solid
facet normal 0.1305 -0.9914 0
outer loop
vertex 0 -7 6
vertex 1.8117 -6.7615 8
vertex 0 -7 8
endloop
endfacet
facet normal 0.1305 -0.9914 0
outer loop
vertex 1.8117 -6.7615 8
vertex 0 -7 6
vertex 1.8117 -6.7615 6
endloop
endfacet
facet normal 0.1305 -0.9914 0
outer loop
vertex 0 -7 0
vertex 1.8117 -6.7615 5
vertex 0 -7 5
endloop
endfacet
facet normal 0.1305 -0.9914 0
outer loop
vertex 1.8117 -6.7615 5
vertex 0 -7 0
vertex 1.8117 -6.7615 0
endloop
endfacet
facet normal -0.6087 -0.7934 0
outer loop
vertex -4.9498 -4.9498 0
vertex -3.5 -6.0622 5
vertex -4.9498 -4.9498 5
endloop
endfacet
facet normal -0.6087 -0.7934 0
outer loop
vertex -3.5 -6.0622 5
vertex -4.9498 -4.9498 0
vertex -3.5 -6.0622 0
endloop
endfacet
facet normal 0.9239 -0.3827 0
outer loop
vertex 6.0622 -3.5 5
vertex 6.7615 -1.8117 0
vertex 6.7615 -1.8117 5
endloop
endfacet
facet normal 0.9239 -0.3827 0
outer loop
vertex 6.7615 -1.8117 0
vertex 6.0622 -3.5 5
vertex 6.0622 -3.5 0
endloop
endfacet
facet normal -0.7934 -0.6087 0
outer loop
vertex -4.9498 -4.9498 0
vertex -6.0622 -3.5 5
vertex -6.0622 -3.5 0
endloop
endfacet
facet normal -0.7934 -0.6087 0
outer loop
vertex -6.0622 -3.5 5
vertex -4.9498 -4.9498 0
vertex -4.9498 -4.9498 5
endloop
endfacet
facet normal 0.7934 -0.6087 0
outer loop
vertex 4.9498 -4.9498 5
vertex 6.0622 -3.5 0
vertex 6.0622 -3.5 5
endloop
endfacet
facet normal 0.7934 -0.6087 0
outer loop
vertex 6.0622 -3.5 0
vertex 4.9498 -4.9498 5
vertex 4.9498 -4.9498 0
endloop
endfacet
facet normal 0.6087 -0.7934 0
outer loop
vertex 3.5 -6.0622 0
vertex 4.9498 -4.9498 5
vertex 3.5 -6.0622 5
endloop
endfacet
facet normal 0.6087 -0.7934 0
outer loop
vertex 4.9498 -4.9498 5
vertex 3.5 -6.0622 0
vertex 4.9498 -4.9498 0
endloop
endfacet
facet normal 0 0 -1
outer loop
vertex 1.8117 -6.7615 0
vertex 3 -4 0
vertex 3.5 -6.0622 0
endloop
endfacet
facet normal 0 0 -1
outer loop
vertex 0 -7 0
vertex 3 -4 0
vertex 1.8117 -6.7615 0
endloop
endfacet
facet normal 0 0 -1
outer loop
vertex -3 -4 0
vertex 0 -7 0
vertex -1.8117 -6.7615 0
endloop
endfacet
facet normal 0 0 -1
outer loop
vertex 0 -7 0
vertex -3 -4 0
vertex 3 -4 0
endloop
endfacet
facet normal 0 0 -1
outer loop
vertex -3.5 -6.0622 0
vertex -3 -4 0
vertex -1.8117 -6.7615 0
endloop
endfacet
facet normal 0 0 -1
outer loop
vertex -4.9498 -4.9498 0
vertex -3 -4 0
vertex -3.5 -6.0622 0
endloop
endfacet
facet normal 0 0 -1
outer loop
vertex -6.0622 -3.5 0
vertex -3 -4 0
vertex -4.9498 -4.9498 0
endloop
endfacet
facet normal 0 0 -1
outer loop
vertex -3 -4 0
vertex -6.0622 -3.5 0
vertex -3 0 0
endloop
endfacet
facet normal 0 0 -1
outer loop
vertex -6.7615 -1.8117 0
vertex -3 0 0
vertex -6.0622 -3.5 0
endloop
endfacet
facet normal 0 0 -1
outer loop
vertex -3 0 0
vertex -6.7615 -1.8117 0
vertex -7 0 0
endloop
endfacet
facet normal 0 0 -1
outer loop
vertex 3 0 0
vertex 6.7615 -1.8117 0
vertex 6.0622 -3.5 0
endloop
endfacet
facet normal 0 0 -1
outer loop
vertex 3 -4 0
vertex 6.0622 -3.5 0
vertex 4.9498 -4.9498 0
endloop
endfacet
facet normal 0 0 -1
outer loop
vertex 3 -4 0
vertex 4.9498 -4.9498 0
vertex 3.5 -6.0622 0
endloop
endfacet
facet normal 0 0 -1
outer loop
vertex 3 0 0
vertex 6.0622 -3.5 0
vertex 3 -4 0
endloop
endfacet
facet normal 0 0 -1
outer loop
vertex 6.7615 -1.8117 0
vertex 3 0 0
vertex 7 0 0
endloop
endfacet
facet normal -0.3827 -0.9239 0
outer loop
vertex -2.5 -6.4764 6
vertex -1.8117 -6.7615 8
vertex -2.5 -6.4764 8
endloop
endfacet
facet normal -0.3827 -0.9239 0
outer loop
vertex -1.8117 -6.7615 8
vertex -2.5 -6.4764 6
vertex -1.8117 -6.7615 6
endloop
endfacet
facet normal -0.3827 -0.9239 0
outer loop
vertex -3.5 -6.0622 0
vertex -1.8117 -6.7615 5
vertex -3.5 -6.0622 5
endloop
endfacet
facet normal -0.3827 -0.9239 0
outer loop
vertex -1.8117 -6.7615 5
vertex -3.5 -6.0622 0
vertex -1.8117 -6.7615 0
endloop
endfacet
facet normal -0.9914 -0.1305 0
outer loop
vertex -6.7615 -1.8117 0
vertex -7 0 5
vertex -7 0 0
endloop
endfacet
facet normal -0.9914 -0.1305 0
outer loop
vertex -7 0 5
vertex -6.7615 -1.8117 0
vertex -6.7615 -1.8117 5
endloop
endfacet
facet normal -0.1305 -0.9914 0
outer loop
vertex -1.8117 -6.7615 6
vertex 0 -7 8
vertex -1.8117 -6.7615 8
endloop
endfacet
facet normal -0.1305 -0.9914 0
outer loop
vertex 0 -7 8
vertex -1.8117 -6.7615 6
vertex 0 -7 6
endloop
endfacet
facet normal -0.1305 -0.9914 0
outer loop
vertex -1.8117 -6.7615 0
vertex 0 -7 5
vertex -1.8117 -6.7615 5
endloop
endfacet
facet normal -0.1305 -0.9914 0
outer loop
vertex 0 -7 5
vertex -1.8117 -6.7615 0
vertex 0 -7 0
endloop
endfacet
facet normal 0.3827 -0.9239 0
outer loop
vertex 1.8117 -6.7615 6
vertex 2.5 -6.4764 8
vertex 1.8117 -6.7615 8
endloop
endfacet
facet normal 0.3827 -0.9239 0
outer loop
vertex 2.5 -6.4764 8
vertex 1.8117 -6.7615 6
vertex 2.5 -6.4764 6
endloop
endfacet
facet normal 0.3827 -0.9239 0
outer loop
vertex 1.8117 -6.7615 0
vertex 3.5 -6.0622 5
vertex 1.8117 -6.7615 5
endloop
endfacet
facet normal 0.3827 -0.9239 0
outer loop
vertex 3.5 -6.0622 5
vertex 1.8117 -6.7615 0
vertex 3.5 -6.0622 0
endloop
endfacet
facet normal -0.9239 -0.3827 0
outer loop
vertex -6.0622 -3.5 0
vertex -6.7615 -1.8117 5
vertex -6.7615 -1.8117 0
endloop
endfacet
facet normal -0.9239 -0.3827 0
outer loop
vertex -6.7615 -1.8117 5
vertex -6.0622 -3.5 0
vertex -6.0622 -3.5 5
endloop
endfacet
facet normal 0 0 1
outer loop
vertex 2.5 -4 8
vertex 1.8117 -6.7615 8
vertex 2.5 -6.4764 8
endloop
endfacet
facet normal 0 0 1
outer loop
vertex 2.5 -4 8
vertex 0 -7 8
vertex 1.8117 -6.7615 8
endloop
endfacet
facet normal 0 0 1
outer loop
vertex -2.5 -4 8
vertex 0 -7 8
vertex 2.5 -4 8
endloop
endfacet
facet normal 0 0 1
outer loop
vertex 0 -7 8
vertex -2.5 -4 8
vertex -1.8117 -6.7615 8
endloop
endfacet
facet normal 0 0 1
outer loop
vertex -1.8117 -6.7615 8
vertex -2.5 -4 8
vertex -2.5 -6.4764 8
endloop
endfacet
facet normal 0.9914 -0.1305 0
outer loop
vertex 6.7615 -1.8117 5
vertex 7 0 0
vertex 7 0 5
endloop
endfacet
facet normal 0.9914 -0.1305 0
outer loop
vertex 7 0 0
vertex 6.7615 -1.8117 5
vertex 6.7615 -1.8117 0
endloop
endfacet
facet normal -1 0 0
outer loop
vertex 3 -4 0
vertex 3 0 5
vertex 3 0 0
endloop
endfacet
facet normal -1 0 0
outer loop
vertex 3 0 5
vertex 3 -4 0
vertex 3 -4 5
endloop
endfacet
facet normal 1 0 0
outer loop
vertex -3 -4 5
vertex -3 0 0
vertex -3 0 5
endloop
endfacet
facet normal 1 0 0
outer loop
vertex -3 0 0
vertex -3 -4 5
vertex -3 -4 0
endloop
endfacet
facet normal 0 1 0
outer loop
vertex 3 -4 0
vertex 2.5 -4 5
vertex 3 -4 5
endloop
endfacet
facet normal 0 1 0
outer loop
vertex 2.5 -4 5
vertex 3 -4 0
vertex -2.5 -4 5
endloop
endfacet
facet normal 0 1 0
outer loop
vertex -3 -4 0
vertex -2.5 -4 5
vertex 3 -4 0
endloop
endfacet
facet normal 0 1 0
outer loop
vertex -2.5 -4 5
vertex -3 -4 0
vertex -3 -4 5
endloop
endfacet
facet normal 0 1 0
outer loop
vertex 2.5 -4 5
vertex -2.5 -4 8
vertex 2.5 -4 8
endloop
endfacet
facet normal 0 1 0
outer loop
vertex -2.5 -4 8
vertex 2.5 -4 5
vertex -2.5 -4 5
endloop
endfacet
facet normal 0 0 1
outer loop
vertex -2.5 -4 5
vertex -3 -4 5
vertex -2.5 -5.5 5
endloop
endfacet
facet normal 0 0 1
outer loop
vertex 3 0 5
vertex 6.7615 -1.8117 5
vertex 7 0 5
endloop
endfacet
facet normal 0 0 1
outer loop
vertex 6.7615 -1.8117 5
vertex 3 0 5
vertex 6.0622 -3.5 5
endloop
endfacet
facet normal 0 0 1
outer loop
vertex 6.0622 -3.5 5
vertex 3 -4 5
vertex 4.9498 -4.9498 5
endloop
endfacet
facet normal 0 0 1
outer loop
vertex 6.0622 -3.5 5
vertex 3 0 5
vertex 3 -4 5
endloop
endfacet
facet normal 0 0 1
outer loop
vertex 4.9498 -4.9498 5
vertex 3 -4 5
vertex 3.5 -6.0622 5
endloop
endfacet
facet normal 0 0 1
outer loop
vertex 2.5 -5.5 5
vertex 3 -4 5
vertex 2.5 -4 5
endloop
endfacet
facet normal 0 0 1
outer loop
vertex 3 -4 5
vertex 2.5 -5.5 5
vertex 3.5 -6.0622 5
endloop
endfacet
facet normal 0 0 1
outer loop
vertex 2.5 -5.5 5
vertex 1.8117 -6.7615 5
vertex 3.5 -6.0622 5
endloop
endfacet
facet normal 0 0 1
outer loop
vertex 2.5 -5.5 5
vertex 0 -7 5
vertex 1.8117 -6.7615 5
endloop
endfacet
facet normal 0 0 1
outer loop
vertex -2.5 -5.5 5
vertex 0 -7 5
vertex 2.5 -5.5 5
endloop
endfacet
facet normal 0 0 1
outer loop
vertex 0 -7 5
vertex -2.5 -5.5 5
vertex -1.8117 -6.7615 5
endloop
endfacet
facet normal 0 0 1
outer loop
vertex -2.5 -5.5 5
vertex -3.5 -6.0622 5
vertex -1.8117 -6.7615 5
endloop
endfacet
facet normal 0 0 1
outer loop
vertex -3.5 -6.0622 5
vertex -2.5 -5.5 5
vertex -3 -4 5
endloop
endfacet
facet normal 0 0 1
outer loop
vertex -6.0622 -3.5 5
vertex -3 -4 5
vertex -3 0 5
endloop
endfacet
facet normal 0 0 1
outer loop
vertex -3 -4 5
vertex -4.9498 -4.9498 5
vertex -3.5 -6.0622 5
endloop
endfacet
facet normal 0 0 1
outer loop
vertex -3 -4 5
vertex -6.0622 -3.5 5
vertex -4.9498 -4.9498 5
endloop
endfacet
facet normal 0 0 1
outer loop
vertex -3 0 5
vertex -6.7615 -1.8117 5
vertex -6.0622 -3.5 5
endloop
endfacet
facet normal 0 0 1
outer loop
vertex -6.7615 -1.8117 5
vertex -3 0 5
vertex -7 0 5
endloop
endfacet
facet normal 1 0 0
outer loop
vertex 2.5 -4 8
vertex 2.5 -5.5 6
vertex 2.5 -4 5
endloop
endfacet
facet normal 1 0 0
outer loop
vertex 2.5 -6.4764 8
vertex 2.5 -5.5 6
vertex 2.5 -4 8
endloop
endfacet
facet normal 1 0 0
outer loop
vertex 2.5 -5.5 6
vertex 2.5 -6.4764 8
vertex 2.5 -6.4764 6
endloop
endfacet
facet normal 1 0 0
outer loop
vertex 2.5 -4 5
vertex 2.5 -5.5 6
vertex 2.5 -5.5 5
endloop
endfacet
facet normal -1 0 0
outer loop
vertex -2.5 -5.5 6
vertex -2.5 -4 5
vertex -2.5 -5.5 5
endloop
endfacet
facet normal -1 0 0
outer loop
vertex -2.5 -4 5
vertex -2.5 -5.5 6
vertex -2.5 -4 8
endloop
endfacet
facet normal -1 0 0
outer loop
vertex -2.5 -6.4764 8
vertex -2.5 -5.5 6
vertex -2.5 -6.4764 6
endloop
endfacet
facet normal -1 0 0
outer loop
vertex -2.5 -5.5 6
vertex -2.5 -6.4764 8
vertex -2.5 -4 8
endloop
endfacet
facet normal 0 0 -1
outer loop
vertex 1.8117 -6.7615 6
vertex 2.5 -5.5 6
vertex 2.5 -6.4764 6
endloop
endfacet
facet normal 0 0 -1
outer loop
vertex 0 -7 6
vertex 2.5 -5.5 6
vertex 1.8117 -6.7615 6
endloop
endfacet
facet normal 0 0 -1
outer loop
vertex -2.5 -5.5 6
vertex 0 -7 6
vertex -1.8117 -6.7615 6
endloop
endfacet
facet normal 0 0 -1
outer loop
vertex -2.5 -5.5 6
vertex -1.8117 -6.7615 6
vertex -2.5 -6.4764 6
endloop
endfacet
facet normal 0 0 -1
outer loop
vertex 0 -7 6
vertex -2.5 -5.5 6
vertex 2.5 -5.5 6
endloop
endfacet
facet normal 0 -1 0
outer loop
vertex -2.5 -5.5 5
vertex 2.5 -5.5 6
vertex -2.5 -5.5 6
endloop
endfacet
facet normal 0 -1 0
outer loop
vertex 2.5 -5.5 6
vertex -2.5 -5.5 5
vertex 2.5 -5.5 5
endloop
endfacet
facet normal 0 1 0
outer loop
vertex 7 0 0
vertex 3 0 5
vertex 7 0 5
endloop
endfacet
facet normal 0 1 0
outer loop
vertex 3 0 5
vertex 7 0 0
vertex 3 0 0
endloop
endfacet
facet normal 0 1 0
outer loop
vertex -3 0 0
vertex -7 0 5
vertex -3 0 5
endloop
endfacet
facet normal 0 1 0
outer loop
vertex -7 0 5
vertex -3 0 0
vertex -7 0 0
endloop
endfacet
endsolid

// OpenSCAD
$fn = 24;
h1 = 5;
h2 = 1;
h3 = 2;
module fused()
{
    difference()
    {
        cylinder(h1+h2+h3,7,7) {}
        translate([-3,-4,0]) { cube([6,8,h1+h2+h3]) {} }
        translate([2.5,-7.5,h1]) { cube([5,15,h2+h3]) {} }
        translate([-7.5,-7.5,h1]) { cube([5,15,h2+h3]) {} }
        translate([-2.5,5.5,h1]) { cube([5,5,h2]) {} }
        translate([-2.5,-10.5,h1]) { cube([5,5,h2]) {} }
    }
}

module half()
{
    difference()
    {
        fused();
        translate([-8,0,0]) { cube([16,8,h1+h2+h3]) {} }
    }
}

half();
